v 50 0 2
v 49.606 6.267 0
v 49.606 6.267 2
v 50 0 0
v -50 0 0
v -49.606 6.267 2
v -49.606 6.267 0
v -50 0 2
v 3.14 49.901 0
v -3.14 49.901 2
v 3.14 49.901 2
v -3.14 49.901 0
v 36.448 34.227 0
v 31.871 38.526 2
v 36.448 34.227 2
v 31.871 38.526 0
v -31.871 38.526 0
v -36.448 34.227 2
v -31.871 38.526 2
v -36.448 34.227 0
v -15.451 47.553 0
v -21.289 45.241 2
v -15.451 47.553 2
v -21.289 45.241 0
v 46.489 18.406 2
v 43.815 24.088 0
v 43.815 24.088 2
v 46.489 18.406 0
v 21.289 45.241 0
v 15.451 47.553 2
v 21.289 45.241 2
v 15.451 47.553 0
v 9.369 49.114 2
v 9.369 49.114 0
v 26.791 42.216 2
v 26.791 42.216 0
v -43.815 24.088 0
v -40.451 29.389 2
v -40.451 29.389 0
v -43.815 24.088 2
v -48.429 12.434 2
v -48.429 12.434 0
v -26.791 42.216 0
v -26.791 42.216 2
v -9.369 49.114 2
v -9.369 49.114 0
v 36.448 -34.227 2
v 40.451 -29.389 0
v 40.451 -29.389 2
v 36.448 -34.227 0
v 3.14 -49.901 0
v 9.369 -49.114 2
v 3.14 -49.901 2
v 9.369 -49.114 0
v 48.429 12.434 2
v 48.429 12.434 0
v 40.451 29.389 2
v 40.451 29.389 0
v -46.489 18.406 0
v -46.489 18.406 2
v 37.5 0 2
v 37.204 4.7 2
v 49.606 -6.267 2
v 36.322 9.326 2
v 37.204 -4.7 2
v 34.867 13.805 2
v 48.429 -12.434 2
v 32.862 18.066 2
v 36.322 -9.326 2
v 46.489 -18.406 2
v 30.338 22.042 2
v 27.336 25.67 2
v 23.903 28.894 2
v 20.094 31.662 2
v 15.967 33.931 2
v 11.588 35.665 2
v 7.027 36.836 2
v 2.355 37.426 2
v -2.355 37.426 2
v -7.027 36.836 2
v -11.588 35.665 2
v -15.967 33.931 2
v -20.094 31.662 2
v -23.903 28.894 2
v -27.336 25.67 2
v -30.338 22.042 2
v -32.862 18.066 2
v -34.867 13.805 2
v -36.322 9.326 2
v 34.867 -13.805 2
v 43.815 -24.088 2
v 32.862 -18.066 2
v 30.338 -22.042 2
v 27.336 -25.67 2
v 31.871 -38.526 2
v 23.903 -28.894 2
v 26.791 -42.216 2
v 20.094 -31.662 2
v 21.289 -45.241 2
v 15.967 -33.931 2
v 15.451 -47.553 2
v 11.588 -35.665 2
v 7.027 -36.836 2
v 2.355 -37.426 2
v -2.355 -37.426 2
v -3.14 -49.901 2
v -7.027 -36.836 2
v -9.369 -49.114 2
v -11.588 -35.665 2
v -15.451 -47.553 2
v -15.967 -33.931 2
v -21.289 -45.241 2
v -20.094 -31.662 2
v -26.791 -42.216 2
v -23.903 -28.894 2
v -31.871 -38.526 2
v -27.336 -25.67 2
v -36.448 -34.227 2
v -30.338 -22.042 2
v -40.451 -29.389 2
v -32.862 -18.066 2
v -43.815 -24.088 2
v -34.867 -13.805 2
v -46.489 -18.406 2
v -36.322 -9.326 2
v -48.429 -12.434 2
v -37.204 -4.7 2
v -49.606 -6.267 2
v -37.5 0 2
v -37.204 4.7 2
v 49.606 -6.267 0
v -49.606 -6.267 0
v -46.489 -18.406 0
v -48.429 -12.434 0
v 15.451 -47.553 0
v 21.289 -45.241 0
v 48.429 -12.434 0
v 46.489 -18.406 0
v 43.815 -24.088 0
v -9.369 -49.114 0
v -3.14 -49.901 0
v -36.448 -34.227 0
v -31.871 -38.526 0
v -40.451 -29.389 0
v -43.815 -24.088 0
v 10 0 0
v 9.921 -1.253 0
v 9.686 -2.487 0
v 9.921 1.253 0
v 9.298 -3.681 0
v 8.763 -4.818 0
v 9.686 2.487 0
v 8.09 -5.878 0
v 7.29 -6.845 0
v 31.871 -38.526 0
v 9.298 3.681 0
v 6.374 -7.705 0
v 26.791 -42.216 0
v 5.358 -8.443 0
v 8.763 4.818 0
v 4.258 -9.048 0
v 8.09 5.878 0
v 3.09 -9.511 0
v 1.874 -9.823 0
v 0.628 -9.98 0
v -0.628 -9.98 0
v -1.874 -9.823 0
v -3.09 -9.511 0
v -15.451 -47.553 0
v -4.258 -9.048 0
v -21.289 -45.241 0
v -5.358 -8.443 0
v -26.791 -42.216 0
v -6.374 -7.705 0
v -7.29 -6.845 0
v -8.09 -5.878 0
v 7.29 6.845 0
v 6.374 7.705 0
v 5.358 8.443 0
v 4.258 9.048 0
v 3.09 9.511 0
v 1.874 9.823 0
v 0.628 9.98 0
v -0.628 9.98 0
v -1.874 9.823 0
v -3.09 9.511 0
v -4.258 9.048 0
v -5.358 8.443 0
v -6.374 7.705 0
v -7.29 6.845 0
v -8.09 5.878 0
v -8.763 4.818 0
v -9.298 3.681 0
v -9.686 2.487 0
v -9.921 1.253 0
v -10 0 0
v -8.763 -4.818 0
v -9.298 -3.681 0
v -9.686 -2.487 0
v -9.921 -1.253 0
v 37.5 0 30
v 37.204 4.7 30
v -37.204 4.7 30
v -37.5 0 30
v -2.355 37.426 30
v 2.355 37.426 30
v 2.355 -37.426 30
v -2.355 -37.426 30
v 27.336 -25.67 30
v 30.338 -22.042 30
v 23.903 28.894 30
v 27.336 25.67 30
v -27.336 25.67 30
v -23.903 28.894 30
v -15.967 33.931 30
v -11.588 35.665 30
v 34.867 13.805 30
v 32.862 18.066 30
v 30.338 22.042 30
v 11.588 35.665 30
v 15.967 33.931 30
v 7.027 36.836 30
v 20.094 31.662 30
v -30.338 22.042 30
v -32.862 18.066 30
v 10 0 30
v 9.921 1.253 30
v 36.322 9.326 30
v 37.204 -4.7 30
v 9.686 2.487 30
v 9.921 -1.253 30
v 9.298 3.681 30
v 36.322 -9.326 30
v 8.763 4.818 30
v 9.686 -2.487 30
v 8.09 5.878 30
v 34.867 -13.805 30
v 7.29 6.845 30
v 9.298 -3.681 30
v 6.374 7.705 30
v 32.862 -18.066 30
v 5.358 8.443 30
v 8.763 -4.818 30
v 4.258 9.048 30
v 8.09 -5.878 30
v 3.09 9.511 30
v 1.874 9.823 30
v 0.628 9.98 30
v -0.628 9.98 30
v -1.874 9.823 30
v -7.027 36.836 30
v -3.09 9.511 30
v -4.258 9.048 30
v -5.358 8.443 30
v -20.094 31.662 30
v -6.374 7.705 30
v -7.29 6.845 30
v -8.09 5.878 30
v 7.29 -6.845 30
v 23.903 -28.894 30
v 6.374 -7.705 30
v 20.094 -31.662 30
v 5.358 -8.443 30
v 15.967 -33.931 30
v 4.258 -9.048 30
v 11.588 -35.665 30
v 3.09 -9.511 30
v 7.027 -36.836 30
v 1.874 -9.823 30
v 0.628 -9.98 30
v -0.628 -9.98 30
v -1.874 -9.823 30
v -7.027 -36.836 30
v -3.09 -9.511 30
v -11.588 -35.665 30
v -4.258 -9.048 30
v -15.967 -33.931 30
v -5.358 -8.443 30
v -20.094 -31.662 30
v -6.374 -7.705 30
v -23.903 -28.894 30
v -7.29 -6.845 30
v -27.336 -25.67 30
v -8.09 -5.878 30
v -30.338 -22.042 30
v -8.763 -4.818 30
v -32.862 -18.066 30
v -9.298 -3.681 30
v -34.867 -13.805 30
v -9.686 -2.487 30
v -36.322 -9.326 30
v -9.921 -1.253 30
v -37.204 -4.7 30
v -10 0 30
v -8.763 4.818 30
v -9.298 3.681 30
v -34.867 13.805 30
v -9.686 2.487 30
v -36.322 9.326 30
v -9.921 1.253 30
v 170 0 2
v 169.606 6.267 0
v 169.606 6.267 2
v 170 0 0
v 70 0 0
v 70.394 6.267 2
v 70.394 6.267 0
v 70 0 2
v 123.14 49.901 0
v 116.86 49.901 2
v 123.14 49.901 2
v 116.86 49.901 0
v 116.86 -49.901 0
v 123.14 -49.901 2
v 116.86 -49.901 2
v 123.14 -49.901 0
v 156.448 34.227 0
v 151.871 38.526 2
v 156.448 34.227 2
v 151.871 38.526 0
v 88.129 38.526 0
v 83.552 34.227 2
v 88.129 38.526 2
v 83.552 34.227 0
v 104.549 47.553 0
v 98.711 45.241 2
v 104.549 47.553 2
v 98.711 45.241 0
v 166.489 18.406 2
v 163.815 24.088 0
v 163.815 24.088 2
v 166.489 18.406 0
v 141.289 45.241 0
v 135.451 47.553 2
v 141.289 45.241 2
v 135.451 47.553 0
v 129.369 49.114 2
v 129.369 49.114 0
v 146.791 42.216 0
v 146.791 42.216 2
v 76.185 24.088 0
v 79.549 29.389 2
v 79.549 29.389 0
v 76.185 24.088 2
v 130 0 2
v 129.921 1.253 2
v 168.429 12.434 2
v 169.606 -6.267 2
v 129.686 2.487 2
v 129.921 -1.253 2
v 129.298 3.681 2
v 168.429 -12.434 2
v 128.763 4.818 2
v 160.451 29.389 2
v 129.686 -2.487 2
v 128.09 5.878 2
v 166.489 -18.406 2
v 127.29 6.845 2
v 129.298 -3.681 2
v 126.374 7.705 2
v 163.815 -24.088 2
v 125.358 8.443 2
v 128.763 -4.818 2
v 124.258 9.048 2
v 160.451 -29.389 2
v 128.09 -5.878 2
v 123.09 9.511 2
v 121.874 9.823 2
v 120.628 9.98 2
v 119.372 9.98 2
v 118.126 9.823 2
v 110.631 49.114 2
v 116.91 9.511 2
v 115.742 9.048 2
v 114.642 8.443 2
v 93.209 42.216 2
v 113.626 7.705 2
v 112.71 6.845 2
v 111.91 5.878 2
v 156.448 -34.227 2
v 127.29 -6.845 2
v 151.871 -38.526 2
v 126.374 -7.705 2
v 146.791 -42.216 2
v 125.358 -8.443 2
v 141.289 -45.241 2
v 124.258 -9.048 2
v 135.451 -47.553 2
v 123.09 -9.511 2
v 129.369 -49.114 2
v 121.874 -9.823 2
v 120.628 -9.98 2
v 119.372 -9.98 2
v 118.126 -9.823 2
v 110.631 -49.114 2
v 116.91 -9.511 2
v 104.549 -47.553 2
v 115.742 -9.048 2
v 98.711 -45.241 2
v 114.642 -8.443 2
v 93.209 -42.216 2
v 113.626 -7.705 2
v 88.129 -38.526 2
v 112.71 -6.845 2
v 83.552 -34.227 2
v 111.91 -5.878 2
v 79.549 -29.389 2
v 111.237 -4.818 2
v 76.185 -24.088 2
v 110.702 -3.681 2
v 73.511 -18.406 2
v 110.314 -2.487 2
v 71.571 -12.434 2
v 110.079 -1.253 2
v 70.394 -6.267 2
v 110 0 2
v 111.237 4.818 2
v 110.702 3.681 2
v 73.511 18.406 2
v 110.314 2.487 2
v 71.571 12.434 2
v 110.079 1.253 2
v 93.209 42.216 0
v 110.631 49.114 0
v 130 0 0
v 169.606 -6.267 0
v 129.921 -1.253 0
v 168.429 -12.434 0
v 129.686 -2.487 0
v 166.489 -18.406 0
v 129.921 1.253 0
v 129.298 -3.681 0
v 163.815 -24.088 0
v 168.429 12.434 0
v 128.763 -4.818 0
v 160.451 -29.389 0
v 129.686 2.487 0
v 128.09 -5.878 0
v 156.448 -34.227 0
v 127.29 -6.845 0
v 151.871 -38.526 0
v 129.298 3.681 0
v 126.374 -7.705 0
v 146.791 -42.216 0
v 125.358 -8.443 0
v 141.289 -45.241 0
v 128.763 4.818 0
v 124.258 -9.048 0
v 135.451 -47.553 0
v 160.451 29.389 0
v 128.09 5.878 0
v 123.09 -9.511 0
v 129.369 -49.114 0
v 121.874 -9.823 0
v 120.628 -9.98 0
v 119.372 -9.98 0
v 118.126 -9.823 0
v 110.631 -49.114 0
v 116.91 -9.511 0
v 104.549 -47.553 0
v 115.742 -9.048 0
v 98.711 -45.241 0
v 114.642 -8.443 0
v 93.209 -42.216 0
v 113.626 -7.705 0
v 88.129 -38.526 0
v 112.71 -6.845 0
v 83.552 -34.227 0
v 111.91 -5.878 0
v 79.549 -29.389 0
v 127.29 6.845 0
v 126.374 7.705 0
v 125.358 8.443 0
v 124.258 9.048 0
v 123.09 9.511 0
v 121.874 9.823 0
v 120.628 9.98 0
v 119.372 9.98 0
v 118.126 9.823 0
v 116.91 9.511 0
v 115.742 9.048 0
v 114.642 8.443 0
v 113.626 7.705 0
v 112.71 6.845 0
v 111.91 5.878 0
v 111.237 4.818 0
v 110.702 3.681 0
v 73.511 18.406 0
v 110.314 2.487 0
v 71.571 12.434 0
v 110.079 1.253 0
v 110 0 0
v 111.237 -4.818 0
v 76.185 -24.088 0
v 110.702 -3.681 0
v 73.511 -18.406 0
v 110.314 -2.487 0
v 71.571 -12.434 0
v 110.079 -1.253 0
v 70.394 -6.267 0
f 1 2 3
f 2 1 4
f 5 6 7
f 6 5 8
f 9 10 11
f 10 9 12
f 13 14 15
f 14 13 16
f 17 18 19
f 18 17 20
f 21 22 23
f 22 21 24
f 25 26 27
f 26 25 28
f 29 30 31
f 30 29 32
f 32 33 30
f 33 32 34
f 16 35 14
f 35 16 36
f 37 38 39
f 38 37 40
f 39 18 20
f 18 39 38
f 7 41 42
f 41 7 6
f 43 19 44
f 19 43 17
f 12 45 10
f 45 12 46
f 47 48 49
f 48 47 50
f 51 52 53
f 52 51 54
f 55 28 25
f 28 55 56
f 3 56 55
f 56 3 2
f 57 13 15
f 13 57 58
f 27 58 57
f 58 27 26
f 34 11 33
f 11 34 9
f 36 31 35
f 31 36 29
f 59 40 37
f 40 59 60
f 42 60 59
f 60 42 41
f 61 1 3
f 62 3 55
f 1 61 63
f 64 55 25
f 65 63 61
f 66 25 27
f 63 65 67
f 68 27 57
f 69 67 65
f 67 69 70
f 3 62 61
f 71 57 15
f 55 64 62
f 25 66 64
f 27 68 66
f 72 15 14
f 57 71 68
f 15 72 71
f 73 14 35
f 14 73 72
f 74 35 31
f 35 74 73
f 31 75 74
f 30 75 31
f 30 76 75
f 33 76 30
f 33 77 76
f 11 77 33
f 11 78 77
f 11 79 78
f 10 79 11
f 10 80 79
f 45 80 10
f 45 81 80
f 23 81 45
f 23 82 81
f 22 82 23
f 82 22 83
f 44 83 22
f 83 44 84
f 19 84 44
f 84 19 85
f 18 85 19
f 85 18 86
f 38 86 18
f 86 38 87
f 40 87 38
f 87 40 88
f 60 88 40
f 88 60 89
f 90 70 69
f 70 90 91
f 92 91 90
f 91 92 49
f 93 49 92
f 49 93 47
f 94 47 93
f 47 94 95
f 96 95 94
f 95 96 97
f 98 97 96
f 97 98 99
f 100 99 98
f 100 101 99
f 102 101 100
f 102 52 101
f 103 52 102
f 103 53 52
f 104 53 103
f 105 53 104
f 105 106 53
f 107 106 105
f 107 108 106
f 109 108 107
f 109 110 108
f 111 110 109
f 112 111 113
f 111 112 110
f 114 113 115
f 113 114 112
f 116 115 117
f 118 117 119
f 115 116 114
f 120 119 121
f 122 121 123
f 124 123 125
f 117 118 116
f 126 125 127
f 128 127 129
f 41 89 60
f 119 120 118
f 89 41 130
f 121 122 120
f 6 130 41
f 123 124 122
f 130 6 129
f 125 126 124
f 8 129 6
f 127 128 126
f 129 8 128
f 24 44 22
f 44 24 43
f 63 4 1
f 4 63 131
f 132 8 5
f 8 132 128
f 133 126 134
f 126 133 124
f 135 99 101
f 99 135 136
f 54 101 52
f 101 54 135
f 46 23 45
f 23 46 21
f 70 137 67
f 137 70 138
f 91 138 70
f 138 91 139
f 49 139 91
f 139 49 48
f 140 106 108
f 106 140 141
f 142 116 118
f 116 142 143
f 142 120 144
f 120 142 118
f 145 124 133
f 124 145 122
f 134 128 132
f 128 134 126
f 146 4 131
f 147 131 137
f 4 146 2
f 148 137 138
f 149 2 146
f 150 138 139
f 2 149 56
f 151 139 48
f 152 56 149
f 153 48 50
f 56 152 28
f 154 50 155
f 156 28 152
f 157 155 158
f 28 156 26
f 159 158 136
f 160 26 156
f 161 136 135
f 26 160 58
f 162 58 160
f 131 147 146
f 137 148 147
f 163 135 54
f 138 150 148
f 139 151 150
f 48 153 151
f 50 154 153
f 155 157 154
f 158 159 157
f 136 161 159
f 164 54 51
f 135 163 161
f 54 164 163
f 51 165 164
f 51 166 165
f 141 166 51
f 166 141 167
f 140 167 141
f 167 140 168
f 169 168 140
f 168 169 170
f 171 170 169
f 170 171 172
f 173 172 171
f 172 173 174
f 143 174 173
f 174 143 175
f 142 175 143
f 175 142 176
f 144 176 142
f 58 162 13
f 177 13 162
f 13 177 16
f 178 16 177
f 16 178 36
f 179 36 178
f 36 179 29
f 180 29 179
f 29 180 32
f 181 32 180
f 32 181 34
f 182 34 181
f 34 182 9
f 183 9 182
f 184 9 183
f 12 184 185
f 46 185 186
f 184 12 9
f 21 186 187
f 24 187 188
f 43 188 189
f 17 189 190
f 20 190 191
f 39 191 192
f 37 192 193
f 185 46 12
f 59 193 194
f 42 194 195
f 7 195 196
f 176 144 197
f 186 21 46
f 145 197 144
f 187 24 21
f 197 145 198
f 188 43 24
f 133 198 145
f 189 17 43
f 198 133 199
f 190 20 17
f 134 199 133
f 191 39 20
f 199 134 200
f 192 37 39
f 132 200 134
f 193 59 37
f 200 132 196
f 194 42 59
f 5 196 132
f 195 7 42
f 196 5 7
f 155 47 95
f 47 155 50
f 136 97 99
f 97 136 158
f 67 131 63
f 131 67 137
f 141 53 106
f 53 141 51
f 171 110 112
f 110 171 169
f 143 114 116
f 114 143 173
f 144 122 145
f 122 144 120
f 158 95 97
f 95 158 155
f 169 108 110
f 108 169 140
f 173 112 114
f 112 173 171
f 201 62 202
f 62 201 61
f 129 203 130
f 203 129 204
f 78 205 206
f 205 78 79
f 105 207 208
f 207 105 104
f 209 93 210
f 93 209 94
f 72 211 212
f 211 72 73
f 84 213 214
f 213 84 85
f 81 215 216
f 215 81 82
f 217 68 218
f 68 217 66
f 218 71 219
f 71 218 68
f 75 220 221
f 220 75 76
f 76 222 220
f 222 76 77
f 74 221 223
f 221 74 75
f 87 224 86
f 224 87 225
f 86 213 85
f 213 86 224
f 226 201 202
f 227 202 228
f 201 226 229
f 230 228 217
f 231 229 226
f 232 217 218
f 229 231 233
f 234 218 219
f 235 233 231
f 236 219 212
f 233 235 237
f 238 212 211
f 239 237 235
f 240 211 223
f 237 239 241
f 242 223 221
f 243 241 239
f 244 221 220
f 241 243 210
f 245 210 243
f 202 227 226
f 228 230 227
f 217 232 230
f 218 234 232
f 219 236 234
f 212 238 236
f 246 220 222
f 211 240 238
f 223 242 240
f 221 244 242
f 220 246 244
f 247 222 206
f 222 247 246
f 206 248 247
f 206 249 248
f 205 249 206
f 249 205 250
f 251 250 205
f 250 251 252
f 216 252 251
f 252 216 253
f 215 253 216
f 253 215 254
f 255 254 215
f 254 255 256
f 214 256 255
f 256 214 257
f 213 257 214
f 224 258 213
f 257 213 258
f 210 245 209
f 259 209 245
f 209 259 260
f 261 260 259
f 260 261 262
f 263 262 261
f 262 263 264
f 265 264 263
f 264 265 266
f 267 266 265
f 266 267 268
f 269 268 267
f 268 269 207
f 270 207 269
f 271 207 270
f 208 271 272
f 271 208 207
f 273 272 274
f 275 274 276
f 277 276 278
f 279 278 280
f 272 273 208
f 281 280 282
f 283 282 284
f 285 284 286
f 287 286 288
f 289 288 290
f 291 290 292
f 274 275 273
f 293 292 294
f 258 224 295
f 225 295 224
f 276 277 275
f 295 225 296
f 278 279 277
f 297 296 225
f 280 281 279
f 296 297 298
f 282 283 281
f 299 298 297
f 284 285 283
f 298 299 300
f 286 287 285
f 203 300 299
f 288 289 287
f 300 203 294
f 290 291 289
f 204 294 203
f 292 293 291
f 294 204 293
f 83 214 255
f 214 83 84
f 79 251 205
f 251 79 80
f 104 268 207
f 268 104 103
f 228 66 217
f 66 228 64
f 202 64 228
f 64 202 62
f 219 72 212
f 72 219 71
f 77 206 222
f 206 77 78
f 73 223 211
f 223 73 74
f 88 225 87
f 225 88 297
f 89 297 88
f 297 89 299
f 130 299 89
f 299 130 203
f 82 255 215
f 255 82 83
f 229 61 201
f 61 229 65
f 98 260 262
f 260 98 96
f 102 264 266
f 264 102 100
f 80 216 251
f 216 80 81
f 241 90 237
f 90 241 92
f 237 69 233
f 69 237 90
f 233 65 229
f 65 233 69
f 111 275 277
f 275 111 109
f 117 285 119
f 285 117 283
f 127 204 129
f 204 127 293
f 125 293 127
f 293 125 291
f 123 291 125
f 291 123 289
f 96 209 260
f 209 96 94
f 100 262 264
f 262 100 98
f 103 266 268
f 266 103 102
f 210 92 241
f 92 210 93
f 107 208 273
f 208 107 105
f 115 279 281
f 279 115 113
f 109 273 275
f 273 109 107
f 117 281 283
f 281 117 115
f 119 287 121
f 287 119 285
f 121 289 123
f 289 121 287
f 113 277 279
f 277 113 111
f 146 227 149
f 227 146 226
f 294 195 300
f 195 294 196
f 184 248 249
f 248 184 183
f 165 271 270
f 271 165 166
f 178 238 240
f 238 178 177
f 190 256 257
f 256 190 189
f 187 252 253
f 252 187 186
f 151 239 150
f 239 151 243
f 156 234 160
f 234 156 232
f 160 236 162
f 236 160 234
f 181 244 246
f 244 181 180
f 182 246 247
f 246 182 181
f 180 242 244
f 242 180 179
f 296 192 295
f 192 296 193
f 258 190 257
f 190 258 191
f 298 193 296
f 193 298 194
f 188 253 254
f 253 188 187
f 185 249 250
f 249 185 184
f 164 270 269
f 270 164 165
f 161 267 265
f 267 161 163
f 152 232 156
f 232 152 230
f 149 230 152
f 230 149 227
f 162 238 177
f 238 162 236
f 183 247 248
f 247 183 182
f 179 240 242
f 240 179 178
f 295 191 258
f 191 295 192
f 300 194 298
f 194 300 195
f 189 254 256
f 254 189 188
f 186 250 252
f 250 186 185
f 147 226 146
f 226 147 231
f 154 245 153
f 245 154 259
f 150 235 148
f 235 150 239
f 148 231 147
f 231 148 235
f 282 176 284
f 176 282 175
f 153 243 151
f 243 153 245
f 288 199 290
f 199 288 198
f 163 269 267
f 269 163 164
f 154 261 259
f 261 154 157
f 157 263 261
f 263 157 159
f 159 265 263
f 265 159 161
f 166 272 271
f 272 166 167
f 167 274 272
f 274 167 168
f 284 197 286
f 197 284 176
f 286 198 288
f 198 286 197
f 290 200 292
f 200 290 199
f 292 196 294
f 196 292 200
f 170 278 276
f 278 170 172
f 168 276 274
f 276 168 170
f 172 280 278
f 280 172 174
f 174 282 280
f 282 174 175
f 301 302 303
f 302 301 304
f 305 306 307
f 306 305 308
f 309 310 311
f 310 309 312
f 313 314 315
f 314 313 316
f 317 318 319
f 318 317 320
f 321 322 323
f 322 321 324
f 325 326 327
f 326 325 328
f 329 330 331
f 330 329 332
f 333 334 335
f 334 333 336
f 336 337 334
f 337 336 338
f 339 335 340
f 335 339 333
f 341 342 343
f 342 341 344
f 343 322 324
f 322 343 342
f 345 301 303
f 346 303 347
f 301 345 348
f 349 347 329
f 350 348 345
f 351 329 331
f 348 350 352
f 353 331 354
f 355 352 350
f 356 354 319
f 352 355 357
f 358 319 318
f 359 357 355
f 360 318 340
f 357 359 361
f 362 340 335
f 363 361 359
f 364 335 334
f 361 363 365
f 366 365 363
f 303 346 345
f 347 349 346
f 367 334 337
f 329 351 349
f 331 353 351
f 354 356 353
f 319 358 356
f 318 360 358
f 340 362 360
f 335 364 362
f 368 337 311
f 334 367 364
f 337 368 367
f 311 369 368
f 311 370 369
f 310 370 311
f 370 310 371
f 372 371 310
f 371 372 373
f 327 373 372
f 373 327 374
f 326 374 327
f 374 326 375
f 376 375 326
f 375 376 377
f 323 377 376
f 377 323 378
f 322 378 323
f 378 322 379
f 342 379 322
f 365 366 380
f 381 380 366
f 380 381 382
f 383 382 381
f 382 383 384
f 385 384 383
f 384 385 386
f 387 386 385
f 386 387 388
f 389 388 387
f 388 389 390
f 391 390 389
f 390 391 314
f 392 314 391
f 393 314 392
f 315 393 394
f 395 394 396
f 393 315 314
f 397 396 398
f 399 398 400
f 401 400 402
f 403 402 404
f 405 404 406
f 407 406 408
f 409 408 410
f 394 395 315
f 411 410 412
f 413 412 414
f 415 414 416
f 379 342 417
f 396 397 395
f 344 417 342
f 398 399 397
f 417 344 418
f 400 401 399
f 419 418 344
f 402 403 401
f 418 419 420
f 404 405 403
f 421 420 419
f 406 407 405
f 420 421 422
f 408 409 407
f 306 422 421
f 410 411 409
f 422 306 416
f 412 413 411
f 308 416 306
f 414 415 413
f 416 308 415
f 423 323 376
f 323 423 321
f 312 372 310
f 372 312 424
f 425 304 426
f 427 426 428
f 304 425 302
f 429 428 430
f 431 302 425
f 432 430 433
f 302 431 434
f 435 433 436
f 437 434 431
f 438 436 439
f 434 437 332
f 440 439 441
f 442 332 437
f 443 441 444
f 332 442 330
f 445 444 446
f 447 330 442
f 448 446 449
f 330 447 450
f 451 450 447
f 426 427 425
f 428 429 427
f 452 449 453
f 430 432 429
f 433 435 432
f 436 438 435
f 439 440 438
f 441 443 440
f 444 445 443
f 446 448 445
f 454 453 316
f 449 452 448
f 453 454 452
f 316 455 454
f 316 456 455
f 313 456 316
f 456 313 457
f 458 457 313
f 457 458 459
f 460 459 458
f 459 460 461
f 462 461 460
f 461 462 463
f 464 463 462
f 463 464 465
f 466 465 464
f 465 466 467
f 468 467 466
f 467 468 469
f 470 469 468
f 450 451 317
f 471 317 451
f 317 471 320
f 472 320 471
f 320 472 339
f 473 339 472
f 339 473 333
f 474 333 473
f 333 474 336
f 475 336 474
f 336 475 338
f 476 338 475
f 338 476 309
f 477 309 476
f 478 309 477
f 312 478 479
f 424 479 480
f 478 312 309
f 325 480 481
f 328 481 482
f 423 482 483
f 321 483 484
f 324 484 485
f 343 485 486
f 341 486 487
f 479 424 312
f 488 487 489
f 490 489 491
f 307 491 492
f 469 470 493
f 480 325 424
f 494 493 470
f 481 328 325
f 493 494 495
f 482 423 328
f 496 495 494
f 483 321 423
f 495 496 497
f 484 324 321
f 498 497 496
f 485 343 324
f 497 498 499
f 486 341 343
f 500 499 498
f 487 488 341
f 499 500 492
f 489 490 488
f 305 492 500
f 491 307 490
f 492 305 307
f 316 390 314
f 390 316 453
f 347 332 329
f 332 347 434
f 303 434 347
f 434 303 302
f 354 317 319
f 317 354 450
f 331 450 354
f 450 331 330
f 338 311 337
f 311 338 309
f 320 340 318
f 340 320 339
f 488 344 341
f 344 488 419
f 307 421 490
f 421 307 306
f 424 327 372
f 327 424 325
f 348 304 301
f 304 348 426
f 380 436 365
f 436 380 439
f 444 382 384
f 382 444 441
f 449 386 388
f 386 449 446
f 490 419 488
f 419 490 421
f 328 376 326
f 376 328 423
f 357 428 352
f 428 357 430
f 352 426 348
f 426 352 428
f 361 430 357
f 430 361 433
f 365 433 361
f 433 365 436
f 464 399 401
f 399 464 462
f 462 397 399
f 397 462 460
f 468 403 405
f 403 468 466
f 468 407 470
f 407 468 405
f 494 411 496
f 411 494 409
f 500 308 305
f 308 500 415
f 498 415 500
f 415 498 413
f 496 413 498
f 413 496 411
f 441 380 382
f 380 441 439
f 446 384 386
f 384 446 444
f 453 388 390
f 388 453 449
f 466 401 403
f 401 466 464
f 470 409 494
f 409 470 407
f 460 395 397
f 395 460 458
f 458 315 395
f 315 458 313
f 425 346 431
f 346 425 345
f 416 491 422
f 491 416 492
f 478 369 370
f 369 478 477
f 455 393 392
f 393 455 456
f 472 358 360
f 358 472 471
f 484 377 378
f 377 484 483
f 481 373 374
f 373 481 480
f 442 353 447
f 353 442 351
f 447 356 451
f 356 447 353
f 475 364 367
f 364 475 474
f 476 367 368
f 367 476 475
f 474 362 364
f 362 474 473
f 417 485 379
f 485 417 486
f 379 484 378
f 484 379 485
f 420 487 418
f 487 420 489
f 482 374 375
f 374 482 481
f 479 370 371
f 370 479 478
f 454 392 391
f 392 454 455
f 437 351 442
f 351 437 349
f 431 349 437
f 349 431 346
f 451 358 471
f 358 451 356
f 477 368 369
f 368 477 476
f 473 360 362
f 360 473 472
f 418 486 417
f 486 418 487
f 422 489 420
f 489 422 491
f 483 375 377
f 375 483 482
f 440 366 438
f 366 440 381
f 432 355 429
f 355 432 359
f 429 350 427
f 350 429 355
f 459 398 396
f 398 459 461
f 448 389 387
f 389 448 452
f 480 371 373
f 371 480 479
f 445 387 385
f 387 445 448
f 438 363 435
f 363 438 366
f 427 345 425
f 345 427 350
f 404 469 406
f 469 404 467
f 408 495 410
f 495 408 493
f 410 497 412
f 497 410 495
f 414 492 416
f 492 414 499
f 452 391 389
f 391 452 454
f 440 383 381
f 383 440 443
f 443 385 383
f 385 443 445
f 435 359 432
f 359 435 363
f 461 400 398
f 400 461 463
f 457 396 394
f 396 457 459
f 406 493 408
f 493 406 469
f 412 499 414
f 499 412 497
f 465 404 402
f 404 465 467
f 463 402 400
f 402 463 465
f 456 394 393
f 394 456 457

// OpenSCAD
$fn=50;

difference() {
    union(){
        cylinder(r=50, h=2);
        cylinder(r=37.5, h=30);
    }
    cylinder(r=10, h=30);
}



translate([120,0,0])
difference() {

    cylinder(r=50, h=2);
    cylinder(r=10, h=30);
}
